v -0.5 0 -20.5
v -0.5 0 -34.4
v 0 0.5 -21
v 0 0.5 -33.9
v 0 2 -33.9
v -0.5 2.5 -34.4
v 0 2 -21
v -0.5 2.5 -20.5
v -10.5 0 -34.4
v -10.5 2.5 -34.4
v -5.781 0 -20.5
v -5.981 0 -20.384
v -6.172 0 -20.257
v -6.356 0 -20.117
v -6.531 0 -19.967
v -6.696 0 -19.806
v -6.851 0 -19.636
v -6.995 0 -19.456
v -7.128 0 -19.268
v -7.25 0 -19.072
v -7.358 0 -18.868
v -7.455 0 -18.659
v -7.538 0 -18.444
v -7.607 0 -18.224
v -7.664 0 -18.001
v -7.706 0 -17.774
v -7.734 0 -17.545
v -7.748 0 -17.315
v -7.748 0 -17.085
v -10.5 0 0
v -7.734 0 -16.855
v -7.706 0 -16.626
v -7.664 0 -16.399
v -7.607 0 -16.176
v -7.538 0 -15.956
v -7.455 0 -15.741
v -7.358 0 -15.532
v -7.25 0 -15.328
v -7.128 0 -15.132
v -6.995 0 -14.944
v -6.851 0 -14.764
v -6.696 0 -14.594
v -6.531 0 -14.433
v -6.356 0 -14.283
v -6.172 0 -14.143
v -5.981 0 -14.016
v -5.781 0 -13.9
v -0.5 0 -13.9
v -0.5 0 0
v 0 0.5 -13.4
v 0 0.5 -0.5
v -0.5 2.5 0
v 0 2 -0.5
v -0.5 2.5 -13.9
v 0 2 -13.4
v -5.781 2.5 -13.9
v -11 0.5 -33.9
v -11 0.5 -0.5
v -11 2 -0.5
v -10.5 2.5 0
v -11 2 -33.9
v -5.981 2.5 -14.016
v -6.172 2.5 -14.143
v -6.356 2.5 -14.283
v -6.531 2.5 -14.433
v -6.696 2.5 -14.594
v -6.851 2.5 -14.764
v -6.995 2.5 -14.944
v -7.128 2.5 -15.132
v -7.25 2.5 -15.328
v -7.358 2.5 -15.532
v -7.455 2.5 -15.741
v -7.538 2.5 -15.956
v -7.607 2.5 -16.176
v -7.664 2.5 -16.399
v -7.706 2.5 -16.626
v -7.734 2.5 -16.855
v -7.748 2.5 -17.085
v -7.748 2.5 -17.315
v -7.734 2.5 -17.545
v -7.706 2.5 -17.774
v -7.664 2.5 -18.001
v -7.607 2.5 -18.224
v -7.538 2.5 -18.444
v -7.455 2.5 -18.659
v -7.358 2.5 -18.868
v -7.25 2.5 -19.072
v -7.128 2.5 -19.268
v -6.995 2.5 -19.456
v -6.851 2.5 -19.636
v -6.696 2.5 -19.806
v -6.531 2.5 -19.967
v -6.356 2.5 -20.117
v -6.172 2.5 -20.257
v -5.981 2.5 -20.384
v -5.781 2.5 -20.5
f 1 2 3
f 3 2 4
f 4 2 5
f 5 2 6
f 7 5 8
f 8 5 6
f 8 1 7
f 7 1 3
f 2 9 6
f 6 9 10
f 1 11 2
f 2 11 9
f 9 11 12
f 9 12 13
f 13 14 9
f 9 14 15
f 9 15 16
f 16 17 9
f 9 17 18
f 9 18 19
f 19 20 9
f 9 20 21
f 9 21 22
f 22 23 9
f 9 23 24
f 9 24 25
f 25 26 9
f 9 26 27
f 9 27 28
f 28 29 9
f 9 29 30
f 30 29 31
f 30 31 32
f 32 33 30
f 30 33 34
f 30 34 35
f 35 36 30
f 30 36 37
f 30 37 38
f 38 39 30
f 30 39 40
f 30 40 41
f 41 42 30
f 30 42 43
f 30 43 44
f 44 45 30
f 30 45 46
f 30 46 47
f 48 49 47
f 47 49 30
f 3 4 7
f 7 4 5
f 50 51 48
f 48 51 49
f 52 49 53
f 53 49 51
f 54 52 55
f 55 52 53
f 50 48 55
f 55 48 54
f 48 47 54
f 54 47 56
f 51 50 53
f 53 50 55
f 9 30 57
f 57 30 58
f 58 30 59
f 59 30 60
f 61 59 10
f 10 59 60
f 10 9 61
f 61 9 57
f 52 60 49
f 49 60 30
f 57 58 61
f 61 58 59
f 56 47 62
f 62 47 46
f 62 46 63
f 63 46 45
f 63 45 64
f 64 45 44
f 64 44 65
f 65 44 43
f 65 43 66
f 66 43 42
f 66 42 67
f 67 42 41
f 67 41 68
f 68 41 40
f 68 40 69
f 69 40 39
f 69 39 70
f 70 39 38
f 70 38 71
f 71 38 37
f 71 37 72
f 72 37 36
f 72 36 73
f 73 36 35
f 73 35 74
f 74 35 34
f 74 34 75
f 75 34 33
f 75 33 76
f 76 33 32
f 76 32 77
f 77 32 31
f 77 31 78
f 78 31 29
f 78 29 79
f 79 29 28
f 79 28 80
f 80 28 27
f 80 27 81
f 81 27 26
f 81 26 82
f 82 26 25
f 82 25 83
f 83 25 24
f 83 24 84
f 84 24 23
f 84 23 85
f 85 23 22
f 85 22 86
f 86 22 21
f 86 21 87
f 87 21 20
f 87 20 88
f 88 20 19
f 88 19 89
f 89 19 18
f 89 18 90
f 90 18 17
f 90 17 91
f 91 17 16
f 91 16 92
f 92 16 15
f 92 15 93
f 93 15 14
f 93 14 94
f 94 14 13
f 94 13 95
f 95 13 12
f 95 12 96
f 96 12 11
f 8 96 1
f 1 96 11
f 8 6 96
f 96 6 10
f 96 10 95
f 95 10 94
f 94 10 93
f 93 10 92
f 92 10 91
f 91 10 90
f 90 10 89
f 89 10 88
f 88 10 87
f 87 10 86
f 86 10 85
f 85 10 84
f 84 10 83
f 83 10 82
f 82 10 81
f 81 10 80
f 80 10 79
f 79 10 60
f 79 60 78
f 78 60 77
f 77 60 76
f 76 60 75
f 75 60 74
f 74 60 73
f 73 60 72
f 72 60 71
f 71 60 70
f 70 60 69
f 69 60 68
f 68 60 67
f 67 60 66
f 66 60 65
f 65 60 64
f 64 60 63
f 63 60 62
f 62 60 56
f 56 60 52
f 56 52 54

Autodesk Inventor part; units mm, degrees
ref_plane "YZ Plane" through (0, 0, 0) normal (1, 0, 0) x (0, 1, 0)
ref_plane "XZ Plane" through (0, 0, 0) normal (0, 1, 0) x (-1, 0, 0)
ref_plane "XY Plane" through (0, 0, 0) normal (0, 0, 1) x (1, 0, 0)
sketch "S-Base" plane through (0, 0, 0) normal (0, 1, 0) x (-1, 0, 0)
  line L0 (0, 0) -> (11, 0)
  line L1 (11, 0) -> (11, -34.4)
  line L2 (11, -34.4) -> (0, -34.4)
  line L3 (0, -34.4) -> (0, 0)
  circle A0 centre (4, -17.2) radius 3.5
  line L4 (0, -13.9) -> (7.5, -13.9)
  line L5 (7.5, -13.9) -> (7.5, -20.5)
  line L6 (7.5, -20.5) -> (0, -20.5)
  line L7 (0, -20.5) -> (0, -13.9) construction
  line L8 (7.5, -17.2) -> (0, -17.2) construction
  circle A1 centre (4, -17.2) radius 3.75
  point P0 (5.7812, -20.5)
  point P1 (5.7812, -13.9)
  dimension "d1" = 7
  dimension "d0" = 34.4
  dimension "d2" = 17.2
  dimension "d3" = 6.6
  dimension "d4" = 11
  dimension "d5" = 7.5
  dimension "d6" = 0.25
extrude "Ex-Base" add sketch "S-Base" along normal blind 2.5 contours L0 L1 L2 L3 L6 A1 L5 L4 | A1 L4 A0 | L6 A0 A1 | A0 L4 | L4 L5 A1 | L6 A0 | A1 L5 L6
chamfer "Fase1" distance 0.5 angle 45 12 edges at (-11, 1.25, 0) (0, 1.25, 0) (0, 1.25, -34.4) (-11, 1.25, -34.4) (0, 1.25, -20.5) (0, 1.25, -13.9) (-11, 2.5, -17.2) (-11, 0, -17.2) (0, 2.5, -6.95) (0, 0, -6.95) (0, 2.5, -27.45) (0, 0, -27.45)
equation "\"d2\" = 0.5 * d0"
properties part number "ProbeHead_Kabelfixieung_V1"
